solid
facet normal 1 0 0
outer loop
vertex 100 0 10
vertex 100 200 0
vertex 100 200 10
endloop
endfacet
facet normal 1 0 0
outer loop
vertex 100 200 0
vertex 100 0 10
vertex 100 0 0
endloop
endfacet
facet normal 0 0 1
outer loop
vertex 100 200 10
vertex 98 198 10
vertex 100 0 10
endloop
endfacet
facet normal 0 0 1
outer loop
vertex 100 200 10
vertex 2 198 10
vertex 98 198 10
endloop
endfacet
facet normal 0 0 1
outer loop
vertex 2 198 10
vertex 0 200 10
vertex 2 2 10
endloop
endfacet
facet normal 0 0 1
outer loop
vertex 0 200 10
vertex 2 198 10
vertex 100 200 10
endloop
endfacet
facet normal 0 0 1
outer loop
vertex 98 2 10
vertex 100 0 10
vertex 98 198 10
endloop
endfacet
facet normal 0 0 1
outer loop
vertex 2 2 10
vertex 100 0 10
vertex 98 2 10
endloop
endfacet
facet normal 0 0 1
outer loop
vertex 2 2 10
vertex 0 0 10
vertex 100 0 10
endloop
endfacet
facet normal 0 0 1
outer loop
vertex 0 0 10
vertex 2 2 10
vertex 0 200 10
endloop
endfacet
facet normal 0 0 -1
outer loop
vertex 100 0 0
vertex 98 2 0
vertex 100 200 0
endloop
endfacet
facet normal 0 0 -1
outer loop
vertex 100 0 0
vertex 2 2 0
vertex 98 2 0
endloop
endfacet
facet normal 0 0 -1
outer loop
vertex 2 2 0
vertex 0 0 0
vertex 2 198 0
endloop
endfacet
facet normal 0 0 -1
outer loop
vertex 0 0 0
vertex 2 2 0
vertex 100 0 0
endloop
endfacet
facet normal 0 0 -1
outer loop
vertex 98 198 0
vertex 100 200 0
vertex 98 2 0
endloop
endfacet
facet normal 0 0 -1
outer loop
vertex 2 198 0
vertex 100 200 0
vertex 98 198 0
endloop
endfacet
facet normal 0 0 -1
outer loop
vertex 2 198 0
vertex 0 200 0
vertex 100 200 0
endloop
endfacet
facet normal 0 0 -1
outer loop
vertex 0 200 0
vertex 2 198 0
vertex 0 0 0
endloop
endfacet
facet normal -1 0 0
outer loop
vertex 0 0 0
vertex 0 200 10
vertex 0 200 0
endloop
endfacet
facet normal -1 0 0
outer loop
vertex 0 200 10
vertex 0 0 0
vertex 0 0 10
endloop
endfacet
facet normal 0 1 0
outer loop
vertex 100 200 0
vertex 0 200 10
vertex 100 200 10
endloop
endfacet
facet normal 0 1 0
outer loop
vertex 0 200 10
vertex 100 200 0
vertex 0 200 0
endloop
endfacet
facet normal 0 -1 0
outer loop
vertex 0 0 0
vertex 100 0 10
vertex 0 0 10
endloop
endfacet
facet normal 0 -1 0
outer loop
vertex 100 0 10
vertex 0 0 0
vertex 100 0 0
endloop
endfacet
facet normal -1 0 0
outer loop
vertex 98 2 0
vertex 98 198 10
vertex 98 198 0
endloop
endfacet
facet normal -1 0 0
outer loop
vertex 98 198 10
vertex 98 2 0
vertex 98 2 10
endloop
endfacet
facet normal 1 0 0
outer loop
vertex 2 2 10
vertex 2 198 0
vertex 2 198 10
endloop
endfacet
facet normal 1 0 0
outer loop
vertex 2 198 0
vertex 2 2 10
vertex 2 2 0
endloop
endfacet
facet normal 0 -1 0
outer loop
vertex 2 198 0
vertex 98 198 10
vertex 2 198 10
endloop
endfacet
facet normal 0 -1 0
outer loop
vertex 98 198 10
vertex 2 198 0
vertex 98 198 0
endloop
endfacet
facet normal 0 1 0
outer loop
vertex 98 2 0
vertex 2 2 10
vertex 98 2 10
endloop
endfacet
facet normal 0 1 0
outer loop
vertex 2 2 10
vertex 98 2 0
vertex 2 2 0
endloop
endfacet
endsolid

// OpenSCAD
module wall(width, height, thickness, fillet_radius) {
  difference() {
    cube([width, height, thickness]);
    translate([fillet_radius, fillet_radius, 0])
    cube([width - 2*fillet_radius, height - 2*fillet_radius, thickness]);
  }
}

wall(width = 100, height = 200, thickness = 10, fillet_radius = 2);
